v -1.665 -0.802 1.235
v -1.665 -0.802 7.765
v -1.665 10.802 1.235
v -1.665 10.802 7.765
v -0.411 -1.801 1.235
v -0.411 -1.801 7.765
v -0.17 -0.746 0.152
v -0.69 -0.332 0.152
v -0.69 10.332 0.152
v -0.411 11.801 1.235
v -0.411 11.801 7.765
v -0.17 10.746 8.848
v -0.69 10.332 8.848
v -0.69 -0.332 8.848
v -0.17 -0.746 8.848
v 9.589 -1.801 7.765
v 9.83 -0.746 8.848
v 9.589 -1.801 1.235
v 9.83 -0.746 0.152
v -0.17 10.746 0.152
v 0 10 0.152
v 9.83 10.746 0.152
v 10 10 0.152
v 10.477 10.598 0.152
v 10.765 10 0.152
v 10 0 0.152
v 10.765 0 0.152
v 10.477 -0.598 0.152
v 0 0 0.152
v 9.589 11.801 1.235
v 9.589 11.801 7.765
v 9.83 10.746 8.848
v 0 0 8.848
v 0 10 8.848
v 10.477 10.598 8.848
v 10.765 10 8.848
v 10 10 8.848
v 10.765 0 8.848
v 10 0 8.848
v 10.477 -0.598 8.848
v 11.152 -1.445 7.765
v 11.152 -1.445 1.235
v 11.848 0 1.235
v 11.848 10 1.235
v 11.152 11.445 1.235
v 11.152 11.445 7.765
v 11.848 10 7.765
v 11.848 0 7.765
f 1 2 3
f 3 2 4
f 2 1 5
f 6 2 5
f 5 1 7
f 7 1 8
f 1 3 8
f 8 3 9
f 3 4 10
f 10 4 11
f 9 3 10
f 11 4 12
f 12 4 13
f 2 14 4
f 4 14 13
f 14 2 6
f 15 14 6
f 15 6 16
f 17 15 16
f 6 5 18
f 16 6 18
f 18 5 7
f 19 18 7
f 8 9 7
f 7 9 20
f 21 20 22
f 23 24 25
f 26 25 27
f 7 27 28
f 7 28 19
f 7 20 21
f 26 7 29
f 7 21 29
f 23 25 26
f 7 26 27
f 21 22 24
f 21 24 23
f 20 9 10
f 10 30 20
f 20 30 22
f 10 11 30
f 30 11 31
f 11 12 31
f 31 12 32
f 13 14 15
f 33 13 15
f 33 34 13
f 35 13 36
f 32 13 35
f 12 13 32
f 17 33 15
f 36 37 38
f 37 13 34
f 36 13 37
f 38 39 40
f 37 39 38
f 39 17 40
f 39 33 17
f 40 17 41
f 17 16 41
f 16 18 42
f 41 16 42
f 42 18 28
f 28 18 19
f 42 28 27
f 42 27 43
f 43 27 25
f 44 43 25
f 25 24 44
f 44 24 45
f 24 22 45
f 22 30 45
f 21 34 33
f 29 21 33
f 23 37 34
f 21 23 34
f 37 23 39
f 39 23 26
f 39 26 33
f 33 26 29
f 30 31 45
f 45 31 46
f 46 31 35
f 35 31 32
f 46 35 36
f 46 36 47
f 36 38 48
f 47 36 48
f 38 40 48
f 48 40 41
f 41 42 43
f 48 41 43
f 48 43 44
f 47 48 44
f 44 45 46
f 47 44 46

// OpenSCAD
StickDia=10;
Thickness=2;
StickLen=5;

difference() {
    minkowski() {
        translate([0,0,+2]) sphere(Thickness);
        cube([StickDia,StickDia,StickLen]);
    }

    translate([0,0,-1])
        cube([StickDia,StickDia,StickLen+10]);
}
